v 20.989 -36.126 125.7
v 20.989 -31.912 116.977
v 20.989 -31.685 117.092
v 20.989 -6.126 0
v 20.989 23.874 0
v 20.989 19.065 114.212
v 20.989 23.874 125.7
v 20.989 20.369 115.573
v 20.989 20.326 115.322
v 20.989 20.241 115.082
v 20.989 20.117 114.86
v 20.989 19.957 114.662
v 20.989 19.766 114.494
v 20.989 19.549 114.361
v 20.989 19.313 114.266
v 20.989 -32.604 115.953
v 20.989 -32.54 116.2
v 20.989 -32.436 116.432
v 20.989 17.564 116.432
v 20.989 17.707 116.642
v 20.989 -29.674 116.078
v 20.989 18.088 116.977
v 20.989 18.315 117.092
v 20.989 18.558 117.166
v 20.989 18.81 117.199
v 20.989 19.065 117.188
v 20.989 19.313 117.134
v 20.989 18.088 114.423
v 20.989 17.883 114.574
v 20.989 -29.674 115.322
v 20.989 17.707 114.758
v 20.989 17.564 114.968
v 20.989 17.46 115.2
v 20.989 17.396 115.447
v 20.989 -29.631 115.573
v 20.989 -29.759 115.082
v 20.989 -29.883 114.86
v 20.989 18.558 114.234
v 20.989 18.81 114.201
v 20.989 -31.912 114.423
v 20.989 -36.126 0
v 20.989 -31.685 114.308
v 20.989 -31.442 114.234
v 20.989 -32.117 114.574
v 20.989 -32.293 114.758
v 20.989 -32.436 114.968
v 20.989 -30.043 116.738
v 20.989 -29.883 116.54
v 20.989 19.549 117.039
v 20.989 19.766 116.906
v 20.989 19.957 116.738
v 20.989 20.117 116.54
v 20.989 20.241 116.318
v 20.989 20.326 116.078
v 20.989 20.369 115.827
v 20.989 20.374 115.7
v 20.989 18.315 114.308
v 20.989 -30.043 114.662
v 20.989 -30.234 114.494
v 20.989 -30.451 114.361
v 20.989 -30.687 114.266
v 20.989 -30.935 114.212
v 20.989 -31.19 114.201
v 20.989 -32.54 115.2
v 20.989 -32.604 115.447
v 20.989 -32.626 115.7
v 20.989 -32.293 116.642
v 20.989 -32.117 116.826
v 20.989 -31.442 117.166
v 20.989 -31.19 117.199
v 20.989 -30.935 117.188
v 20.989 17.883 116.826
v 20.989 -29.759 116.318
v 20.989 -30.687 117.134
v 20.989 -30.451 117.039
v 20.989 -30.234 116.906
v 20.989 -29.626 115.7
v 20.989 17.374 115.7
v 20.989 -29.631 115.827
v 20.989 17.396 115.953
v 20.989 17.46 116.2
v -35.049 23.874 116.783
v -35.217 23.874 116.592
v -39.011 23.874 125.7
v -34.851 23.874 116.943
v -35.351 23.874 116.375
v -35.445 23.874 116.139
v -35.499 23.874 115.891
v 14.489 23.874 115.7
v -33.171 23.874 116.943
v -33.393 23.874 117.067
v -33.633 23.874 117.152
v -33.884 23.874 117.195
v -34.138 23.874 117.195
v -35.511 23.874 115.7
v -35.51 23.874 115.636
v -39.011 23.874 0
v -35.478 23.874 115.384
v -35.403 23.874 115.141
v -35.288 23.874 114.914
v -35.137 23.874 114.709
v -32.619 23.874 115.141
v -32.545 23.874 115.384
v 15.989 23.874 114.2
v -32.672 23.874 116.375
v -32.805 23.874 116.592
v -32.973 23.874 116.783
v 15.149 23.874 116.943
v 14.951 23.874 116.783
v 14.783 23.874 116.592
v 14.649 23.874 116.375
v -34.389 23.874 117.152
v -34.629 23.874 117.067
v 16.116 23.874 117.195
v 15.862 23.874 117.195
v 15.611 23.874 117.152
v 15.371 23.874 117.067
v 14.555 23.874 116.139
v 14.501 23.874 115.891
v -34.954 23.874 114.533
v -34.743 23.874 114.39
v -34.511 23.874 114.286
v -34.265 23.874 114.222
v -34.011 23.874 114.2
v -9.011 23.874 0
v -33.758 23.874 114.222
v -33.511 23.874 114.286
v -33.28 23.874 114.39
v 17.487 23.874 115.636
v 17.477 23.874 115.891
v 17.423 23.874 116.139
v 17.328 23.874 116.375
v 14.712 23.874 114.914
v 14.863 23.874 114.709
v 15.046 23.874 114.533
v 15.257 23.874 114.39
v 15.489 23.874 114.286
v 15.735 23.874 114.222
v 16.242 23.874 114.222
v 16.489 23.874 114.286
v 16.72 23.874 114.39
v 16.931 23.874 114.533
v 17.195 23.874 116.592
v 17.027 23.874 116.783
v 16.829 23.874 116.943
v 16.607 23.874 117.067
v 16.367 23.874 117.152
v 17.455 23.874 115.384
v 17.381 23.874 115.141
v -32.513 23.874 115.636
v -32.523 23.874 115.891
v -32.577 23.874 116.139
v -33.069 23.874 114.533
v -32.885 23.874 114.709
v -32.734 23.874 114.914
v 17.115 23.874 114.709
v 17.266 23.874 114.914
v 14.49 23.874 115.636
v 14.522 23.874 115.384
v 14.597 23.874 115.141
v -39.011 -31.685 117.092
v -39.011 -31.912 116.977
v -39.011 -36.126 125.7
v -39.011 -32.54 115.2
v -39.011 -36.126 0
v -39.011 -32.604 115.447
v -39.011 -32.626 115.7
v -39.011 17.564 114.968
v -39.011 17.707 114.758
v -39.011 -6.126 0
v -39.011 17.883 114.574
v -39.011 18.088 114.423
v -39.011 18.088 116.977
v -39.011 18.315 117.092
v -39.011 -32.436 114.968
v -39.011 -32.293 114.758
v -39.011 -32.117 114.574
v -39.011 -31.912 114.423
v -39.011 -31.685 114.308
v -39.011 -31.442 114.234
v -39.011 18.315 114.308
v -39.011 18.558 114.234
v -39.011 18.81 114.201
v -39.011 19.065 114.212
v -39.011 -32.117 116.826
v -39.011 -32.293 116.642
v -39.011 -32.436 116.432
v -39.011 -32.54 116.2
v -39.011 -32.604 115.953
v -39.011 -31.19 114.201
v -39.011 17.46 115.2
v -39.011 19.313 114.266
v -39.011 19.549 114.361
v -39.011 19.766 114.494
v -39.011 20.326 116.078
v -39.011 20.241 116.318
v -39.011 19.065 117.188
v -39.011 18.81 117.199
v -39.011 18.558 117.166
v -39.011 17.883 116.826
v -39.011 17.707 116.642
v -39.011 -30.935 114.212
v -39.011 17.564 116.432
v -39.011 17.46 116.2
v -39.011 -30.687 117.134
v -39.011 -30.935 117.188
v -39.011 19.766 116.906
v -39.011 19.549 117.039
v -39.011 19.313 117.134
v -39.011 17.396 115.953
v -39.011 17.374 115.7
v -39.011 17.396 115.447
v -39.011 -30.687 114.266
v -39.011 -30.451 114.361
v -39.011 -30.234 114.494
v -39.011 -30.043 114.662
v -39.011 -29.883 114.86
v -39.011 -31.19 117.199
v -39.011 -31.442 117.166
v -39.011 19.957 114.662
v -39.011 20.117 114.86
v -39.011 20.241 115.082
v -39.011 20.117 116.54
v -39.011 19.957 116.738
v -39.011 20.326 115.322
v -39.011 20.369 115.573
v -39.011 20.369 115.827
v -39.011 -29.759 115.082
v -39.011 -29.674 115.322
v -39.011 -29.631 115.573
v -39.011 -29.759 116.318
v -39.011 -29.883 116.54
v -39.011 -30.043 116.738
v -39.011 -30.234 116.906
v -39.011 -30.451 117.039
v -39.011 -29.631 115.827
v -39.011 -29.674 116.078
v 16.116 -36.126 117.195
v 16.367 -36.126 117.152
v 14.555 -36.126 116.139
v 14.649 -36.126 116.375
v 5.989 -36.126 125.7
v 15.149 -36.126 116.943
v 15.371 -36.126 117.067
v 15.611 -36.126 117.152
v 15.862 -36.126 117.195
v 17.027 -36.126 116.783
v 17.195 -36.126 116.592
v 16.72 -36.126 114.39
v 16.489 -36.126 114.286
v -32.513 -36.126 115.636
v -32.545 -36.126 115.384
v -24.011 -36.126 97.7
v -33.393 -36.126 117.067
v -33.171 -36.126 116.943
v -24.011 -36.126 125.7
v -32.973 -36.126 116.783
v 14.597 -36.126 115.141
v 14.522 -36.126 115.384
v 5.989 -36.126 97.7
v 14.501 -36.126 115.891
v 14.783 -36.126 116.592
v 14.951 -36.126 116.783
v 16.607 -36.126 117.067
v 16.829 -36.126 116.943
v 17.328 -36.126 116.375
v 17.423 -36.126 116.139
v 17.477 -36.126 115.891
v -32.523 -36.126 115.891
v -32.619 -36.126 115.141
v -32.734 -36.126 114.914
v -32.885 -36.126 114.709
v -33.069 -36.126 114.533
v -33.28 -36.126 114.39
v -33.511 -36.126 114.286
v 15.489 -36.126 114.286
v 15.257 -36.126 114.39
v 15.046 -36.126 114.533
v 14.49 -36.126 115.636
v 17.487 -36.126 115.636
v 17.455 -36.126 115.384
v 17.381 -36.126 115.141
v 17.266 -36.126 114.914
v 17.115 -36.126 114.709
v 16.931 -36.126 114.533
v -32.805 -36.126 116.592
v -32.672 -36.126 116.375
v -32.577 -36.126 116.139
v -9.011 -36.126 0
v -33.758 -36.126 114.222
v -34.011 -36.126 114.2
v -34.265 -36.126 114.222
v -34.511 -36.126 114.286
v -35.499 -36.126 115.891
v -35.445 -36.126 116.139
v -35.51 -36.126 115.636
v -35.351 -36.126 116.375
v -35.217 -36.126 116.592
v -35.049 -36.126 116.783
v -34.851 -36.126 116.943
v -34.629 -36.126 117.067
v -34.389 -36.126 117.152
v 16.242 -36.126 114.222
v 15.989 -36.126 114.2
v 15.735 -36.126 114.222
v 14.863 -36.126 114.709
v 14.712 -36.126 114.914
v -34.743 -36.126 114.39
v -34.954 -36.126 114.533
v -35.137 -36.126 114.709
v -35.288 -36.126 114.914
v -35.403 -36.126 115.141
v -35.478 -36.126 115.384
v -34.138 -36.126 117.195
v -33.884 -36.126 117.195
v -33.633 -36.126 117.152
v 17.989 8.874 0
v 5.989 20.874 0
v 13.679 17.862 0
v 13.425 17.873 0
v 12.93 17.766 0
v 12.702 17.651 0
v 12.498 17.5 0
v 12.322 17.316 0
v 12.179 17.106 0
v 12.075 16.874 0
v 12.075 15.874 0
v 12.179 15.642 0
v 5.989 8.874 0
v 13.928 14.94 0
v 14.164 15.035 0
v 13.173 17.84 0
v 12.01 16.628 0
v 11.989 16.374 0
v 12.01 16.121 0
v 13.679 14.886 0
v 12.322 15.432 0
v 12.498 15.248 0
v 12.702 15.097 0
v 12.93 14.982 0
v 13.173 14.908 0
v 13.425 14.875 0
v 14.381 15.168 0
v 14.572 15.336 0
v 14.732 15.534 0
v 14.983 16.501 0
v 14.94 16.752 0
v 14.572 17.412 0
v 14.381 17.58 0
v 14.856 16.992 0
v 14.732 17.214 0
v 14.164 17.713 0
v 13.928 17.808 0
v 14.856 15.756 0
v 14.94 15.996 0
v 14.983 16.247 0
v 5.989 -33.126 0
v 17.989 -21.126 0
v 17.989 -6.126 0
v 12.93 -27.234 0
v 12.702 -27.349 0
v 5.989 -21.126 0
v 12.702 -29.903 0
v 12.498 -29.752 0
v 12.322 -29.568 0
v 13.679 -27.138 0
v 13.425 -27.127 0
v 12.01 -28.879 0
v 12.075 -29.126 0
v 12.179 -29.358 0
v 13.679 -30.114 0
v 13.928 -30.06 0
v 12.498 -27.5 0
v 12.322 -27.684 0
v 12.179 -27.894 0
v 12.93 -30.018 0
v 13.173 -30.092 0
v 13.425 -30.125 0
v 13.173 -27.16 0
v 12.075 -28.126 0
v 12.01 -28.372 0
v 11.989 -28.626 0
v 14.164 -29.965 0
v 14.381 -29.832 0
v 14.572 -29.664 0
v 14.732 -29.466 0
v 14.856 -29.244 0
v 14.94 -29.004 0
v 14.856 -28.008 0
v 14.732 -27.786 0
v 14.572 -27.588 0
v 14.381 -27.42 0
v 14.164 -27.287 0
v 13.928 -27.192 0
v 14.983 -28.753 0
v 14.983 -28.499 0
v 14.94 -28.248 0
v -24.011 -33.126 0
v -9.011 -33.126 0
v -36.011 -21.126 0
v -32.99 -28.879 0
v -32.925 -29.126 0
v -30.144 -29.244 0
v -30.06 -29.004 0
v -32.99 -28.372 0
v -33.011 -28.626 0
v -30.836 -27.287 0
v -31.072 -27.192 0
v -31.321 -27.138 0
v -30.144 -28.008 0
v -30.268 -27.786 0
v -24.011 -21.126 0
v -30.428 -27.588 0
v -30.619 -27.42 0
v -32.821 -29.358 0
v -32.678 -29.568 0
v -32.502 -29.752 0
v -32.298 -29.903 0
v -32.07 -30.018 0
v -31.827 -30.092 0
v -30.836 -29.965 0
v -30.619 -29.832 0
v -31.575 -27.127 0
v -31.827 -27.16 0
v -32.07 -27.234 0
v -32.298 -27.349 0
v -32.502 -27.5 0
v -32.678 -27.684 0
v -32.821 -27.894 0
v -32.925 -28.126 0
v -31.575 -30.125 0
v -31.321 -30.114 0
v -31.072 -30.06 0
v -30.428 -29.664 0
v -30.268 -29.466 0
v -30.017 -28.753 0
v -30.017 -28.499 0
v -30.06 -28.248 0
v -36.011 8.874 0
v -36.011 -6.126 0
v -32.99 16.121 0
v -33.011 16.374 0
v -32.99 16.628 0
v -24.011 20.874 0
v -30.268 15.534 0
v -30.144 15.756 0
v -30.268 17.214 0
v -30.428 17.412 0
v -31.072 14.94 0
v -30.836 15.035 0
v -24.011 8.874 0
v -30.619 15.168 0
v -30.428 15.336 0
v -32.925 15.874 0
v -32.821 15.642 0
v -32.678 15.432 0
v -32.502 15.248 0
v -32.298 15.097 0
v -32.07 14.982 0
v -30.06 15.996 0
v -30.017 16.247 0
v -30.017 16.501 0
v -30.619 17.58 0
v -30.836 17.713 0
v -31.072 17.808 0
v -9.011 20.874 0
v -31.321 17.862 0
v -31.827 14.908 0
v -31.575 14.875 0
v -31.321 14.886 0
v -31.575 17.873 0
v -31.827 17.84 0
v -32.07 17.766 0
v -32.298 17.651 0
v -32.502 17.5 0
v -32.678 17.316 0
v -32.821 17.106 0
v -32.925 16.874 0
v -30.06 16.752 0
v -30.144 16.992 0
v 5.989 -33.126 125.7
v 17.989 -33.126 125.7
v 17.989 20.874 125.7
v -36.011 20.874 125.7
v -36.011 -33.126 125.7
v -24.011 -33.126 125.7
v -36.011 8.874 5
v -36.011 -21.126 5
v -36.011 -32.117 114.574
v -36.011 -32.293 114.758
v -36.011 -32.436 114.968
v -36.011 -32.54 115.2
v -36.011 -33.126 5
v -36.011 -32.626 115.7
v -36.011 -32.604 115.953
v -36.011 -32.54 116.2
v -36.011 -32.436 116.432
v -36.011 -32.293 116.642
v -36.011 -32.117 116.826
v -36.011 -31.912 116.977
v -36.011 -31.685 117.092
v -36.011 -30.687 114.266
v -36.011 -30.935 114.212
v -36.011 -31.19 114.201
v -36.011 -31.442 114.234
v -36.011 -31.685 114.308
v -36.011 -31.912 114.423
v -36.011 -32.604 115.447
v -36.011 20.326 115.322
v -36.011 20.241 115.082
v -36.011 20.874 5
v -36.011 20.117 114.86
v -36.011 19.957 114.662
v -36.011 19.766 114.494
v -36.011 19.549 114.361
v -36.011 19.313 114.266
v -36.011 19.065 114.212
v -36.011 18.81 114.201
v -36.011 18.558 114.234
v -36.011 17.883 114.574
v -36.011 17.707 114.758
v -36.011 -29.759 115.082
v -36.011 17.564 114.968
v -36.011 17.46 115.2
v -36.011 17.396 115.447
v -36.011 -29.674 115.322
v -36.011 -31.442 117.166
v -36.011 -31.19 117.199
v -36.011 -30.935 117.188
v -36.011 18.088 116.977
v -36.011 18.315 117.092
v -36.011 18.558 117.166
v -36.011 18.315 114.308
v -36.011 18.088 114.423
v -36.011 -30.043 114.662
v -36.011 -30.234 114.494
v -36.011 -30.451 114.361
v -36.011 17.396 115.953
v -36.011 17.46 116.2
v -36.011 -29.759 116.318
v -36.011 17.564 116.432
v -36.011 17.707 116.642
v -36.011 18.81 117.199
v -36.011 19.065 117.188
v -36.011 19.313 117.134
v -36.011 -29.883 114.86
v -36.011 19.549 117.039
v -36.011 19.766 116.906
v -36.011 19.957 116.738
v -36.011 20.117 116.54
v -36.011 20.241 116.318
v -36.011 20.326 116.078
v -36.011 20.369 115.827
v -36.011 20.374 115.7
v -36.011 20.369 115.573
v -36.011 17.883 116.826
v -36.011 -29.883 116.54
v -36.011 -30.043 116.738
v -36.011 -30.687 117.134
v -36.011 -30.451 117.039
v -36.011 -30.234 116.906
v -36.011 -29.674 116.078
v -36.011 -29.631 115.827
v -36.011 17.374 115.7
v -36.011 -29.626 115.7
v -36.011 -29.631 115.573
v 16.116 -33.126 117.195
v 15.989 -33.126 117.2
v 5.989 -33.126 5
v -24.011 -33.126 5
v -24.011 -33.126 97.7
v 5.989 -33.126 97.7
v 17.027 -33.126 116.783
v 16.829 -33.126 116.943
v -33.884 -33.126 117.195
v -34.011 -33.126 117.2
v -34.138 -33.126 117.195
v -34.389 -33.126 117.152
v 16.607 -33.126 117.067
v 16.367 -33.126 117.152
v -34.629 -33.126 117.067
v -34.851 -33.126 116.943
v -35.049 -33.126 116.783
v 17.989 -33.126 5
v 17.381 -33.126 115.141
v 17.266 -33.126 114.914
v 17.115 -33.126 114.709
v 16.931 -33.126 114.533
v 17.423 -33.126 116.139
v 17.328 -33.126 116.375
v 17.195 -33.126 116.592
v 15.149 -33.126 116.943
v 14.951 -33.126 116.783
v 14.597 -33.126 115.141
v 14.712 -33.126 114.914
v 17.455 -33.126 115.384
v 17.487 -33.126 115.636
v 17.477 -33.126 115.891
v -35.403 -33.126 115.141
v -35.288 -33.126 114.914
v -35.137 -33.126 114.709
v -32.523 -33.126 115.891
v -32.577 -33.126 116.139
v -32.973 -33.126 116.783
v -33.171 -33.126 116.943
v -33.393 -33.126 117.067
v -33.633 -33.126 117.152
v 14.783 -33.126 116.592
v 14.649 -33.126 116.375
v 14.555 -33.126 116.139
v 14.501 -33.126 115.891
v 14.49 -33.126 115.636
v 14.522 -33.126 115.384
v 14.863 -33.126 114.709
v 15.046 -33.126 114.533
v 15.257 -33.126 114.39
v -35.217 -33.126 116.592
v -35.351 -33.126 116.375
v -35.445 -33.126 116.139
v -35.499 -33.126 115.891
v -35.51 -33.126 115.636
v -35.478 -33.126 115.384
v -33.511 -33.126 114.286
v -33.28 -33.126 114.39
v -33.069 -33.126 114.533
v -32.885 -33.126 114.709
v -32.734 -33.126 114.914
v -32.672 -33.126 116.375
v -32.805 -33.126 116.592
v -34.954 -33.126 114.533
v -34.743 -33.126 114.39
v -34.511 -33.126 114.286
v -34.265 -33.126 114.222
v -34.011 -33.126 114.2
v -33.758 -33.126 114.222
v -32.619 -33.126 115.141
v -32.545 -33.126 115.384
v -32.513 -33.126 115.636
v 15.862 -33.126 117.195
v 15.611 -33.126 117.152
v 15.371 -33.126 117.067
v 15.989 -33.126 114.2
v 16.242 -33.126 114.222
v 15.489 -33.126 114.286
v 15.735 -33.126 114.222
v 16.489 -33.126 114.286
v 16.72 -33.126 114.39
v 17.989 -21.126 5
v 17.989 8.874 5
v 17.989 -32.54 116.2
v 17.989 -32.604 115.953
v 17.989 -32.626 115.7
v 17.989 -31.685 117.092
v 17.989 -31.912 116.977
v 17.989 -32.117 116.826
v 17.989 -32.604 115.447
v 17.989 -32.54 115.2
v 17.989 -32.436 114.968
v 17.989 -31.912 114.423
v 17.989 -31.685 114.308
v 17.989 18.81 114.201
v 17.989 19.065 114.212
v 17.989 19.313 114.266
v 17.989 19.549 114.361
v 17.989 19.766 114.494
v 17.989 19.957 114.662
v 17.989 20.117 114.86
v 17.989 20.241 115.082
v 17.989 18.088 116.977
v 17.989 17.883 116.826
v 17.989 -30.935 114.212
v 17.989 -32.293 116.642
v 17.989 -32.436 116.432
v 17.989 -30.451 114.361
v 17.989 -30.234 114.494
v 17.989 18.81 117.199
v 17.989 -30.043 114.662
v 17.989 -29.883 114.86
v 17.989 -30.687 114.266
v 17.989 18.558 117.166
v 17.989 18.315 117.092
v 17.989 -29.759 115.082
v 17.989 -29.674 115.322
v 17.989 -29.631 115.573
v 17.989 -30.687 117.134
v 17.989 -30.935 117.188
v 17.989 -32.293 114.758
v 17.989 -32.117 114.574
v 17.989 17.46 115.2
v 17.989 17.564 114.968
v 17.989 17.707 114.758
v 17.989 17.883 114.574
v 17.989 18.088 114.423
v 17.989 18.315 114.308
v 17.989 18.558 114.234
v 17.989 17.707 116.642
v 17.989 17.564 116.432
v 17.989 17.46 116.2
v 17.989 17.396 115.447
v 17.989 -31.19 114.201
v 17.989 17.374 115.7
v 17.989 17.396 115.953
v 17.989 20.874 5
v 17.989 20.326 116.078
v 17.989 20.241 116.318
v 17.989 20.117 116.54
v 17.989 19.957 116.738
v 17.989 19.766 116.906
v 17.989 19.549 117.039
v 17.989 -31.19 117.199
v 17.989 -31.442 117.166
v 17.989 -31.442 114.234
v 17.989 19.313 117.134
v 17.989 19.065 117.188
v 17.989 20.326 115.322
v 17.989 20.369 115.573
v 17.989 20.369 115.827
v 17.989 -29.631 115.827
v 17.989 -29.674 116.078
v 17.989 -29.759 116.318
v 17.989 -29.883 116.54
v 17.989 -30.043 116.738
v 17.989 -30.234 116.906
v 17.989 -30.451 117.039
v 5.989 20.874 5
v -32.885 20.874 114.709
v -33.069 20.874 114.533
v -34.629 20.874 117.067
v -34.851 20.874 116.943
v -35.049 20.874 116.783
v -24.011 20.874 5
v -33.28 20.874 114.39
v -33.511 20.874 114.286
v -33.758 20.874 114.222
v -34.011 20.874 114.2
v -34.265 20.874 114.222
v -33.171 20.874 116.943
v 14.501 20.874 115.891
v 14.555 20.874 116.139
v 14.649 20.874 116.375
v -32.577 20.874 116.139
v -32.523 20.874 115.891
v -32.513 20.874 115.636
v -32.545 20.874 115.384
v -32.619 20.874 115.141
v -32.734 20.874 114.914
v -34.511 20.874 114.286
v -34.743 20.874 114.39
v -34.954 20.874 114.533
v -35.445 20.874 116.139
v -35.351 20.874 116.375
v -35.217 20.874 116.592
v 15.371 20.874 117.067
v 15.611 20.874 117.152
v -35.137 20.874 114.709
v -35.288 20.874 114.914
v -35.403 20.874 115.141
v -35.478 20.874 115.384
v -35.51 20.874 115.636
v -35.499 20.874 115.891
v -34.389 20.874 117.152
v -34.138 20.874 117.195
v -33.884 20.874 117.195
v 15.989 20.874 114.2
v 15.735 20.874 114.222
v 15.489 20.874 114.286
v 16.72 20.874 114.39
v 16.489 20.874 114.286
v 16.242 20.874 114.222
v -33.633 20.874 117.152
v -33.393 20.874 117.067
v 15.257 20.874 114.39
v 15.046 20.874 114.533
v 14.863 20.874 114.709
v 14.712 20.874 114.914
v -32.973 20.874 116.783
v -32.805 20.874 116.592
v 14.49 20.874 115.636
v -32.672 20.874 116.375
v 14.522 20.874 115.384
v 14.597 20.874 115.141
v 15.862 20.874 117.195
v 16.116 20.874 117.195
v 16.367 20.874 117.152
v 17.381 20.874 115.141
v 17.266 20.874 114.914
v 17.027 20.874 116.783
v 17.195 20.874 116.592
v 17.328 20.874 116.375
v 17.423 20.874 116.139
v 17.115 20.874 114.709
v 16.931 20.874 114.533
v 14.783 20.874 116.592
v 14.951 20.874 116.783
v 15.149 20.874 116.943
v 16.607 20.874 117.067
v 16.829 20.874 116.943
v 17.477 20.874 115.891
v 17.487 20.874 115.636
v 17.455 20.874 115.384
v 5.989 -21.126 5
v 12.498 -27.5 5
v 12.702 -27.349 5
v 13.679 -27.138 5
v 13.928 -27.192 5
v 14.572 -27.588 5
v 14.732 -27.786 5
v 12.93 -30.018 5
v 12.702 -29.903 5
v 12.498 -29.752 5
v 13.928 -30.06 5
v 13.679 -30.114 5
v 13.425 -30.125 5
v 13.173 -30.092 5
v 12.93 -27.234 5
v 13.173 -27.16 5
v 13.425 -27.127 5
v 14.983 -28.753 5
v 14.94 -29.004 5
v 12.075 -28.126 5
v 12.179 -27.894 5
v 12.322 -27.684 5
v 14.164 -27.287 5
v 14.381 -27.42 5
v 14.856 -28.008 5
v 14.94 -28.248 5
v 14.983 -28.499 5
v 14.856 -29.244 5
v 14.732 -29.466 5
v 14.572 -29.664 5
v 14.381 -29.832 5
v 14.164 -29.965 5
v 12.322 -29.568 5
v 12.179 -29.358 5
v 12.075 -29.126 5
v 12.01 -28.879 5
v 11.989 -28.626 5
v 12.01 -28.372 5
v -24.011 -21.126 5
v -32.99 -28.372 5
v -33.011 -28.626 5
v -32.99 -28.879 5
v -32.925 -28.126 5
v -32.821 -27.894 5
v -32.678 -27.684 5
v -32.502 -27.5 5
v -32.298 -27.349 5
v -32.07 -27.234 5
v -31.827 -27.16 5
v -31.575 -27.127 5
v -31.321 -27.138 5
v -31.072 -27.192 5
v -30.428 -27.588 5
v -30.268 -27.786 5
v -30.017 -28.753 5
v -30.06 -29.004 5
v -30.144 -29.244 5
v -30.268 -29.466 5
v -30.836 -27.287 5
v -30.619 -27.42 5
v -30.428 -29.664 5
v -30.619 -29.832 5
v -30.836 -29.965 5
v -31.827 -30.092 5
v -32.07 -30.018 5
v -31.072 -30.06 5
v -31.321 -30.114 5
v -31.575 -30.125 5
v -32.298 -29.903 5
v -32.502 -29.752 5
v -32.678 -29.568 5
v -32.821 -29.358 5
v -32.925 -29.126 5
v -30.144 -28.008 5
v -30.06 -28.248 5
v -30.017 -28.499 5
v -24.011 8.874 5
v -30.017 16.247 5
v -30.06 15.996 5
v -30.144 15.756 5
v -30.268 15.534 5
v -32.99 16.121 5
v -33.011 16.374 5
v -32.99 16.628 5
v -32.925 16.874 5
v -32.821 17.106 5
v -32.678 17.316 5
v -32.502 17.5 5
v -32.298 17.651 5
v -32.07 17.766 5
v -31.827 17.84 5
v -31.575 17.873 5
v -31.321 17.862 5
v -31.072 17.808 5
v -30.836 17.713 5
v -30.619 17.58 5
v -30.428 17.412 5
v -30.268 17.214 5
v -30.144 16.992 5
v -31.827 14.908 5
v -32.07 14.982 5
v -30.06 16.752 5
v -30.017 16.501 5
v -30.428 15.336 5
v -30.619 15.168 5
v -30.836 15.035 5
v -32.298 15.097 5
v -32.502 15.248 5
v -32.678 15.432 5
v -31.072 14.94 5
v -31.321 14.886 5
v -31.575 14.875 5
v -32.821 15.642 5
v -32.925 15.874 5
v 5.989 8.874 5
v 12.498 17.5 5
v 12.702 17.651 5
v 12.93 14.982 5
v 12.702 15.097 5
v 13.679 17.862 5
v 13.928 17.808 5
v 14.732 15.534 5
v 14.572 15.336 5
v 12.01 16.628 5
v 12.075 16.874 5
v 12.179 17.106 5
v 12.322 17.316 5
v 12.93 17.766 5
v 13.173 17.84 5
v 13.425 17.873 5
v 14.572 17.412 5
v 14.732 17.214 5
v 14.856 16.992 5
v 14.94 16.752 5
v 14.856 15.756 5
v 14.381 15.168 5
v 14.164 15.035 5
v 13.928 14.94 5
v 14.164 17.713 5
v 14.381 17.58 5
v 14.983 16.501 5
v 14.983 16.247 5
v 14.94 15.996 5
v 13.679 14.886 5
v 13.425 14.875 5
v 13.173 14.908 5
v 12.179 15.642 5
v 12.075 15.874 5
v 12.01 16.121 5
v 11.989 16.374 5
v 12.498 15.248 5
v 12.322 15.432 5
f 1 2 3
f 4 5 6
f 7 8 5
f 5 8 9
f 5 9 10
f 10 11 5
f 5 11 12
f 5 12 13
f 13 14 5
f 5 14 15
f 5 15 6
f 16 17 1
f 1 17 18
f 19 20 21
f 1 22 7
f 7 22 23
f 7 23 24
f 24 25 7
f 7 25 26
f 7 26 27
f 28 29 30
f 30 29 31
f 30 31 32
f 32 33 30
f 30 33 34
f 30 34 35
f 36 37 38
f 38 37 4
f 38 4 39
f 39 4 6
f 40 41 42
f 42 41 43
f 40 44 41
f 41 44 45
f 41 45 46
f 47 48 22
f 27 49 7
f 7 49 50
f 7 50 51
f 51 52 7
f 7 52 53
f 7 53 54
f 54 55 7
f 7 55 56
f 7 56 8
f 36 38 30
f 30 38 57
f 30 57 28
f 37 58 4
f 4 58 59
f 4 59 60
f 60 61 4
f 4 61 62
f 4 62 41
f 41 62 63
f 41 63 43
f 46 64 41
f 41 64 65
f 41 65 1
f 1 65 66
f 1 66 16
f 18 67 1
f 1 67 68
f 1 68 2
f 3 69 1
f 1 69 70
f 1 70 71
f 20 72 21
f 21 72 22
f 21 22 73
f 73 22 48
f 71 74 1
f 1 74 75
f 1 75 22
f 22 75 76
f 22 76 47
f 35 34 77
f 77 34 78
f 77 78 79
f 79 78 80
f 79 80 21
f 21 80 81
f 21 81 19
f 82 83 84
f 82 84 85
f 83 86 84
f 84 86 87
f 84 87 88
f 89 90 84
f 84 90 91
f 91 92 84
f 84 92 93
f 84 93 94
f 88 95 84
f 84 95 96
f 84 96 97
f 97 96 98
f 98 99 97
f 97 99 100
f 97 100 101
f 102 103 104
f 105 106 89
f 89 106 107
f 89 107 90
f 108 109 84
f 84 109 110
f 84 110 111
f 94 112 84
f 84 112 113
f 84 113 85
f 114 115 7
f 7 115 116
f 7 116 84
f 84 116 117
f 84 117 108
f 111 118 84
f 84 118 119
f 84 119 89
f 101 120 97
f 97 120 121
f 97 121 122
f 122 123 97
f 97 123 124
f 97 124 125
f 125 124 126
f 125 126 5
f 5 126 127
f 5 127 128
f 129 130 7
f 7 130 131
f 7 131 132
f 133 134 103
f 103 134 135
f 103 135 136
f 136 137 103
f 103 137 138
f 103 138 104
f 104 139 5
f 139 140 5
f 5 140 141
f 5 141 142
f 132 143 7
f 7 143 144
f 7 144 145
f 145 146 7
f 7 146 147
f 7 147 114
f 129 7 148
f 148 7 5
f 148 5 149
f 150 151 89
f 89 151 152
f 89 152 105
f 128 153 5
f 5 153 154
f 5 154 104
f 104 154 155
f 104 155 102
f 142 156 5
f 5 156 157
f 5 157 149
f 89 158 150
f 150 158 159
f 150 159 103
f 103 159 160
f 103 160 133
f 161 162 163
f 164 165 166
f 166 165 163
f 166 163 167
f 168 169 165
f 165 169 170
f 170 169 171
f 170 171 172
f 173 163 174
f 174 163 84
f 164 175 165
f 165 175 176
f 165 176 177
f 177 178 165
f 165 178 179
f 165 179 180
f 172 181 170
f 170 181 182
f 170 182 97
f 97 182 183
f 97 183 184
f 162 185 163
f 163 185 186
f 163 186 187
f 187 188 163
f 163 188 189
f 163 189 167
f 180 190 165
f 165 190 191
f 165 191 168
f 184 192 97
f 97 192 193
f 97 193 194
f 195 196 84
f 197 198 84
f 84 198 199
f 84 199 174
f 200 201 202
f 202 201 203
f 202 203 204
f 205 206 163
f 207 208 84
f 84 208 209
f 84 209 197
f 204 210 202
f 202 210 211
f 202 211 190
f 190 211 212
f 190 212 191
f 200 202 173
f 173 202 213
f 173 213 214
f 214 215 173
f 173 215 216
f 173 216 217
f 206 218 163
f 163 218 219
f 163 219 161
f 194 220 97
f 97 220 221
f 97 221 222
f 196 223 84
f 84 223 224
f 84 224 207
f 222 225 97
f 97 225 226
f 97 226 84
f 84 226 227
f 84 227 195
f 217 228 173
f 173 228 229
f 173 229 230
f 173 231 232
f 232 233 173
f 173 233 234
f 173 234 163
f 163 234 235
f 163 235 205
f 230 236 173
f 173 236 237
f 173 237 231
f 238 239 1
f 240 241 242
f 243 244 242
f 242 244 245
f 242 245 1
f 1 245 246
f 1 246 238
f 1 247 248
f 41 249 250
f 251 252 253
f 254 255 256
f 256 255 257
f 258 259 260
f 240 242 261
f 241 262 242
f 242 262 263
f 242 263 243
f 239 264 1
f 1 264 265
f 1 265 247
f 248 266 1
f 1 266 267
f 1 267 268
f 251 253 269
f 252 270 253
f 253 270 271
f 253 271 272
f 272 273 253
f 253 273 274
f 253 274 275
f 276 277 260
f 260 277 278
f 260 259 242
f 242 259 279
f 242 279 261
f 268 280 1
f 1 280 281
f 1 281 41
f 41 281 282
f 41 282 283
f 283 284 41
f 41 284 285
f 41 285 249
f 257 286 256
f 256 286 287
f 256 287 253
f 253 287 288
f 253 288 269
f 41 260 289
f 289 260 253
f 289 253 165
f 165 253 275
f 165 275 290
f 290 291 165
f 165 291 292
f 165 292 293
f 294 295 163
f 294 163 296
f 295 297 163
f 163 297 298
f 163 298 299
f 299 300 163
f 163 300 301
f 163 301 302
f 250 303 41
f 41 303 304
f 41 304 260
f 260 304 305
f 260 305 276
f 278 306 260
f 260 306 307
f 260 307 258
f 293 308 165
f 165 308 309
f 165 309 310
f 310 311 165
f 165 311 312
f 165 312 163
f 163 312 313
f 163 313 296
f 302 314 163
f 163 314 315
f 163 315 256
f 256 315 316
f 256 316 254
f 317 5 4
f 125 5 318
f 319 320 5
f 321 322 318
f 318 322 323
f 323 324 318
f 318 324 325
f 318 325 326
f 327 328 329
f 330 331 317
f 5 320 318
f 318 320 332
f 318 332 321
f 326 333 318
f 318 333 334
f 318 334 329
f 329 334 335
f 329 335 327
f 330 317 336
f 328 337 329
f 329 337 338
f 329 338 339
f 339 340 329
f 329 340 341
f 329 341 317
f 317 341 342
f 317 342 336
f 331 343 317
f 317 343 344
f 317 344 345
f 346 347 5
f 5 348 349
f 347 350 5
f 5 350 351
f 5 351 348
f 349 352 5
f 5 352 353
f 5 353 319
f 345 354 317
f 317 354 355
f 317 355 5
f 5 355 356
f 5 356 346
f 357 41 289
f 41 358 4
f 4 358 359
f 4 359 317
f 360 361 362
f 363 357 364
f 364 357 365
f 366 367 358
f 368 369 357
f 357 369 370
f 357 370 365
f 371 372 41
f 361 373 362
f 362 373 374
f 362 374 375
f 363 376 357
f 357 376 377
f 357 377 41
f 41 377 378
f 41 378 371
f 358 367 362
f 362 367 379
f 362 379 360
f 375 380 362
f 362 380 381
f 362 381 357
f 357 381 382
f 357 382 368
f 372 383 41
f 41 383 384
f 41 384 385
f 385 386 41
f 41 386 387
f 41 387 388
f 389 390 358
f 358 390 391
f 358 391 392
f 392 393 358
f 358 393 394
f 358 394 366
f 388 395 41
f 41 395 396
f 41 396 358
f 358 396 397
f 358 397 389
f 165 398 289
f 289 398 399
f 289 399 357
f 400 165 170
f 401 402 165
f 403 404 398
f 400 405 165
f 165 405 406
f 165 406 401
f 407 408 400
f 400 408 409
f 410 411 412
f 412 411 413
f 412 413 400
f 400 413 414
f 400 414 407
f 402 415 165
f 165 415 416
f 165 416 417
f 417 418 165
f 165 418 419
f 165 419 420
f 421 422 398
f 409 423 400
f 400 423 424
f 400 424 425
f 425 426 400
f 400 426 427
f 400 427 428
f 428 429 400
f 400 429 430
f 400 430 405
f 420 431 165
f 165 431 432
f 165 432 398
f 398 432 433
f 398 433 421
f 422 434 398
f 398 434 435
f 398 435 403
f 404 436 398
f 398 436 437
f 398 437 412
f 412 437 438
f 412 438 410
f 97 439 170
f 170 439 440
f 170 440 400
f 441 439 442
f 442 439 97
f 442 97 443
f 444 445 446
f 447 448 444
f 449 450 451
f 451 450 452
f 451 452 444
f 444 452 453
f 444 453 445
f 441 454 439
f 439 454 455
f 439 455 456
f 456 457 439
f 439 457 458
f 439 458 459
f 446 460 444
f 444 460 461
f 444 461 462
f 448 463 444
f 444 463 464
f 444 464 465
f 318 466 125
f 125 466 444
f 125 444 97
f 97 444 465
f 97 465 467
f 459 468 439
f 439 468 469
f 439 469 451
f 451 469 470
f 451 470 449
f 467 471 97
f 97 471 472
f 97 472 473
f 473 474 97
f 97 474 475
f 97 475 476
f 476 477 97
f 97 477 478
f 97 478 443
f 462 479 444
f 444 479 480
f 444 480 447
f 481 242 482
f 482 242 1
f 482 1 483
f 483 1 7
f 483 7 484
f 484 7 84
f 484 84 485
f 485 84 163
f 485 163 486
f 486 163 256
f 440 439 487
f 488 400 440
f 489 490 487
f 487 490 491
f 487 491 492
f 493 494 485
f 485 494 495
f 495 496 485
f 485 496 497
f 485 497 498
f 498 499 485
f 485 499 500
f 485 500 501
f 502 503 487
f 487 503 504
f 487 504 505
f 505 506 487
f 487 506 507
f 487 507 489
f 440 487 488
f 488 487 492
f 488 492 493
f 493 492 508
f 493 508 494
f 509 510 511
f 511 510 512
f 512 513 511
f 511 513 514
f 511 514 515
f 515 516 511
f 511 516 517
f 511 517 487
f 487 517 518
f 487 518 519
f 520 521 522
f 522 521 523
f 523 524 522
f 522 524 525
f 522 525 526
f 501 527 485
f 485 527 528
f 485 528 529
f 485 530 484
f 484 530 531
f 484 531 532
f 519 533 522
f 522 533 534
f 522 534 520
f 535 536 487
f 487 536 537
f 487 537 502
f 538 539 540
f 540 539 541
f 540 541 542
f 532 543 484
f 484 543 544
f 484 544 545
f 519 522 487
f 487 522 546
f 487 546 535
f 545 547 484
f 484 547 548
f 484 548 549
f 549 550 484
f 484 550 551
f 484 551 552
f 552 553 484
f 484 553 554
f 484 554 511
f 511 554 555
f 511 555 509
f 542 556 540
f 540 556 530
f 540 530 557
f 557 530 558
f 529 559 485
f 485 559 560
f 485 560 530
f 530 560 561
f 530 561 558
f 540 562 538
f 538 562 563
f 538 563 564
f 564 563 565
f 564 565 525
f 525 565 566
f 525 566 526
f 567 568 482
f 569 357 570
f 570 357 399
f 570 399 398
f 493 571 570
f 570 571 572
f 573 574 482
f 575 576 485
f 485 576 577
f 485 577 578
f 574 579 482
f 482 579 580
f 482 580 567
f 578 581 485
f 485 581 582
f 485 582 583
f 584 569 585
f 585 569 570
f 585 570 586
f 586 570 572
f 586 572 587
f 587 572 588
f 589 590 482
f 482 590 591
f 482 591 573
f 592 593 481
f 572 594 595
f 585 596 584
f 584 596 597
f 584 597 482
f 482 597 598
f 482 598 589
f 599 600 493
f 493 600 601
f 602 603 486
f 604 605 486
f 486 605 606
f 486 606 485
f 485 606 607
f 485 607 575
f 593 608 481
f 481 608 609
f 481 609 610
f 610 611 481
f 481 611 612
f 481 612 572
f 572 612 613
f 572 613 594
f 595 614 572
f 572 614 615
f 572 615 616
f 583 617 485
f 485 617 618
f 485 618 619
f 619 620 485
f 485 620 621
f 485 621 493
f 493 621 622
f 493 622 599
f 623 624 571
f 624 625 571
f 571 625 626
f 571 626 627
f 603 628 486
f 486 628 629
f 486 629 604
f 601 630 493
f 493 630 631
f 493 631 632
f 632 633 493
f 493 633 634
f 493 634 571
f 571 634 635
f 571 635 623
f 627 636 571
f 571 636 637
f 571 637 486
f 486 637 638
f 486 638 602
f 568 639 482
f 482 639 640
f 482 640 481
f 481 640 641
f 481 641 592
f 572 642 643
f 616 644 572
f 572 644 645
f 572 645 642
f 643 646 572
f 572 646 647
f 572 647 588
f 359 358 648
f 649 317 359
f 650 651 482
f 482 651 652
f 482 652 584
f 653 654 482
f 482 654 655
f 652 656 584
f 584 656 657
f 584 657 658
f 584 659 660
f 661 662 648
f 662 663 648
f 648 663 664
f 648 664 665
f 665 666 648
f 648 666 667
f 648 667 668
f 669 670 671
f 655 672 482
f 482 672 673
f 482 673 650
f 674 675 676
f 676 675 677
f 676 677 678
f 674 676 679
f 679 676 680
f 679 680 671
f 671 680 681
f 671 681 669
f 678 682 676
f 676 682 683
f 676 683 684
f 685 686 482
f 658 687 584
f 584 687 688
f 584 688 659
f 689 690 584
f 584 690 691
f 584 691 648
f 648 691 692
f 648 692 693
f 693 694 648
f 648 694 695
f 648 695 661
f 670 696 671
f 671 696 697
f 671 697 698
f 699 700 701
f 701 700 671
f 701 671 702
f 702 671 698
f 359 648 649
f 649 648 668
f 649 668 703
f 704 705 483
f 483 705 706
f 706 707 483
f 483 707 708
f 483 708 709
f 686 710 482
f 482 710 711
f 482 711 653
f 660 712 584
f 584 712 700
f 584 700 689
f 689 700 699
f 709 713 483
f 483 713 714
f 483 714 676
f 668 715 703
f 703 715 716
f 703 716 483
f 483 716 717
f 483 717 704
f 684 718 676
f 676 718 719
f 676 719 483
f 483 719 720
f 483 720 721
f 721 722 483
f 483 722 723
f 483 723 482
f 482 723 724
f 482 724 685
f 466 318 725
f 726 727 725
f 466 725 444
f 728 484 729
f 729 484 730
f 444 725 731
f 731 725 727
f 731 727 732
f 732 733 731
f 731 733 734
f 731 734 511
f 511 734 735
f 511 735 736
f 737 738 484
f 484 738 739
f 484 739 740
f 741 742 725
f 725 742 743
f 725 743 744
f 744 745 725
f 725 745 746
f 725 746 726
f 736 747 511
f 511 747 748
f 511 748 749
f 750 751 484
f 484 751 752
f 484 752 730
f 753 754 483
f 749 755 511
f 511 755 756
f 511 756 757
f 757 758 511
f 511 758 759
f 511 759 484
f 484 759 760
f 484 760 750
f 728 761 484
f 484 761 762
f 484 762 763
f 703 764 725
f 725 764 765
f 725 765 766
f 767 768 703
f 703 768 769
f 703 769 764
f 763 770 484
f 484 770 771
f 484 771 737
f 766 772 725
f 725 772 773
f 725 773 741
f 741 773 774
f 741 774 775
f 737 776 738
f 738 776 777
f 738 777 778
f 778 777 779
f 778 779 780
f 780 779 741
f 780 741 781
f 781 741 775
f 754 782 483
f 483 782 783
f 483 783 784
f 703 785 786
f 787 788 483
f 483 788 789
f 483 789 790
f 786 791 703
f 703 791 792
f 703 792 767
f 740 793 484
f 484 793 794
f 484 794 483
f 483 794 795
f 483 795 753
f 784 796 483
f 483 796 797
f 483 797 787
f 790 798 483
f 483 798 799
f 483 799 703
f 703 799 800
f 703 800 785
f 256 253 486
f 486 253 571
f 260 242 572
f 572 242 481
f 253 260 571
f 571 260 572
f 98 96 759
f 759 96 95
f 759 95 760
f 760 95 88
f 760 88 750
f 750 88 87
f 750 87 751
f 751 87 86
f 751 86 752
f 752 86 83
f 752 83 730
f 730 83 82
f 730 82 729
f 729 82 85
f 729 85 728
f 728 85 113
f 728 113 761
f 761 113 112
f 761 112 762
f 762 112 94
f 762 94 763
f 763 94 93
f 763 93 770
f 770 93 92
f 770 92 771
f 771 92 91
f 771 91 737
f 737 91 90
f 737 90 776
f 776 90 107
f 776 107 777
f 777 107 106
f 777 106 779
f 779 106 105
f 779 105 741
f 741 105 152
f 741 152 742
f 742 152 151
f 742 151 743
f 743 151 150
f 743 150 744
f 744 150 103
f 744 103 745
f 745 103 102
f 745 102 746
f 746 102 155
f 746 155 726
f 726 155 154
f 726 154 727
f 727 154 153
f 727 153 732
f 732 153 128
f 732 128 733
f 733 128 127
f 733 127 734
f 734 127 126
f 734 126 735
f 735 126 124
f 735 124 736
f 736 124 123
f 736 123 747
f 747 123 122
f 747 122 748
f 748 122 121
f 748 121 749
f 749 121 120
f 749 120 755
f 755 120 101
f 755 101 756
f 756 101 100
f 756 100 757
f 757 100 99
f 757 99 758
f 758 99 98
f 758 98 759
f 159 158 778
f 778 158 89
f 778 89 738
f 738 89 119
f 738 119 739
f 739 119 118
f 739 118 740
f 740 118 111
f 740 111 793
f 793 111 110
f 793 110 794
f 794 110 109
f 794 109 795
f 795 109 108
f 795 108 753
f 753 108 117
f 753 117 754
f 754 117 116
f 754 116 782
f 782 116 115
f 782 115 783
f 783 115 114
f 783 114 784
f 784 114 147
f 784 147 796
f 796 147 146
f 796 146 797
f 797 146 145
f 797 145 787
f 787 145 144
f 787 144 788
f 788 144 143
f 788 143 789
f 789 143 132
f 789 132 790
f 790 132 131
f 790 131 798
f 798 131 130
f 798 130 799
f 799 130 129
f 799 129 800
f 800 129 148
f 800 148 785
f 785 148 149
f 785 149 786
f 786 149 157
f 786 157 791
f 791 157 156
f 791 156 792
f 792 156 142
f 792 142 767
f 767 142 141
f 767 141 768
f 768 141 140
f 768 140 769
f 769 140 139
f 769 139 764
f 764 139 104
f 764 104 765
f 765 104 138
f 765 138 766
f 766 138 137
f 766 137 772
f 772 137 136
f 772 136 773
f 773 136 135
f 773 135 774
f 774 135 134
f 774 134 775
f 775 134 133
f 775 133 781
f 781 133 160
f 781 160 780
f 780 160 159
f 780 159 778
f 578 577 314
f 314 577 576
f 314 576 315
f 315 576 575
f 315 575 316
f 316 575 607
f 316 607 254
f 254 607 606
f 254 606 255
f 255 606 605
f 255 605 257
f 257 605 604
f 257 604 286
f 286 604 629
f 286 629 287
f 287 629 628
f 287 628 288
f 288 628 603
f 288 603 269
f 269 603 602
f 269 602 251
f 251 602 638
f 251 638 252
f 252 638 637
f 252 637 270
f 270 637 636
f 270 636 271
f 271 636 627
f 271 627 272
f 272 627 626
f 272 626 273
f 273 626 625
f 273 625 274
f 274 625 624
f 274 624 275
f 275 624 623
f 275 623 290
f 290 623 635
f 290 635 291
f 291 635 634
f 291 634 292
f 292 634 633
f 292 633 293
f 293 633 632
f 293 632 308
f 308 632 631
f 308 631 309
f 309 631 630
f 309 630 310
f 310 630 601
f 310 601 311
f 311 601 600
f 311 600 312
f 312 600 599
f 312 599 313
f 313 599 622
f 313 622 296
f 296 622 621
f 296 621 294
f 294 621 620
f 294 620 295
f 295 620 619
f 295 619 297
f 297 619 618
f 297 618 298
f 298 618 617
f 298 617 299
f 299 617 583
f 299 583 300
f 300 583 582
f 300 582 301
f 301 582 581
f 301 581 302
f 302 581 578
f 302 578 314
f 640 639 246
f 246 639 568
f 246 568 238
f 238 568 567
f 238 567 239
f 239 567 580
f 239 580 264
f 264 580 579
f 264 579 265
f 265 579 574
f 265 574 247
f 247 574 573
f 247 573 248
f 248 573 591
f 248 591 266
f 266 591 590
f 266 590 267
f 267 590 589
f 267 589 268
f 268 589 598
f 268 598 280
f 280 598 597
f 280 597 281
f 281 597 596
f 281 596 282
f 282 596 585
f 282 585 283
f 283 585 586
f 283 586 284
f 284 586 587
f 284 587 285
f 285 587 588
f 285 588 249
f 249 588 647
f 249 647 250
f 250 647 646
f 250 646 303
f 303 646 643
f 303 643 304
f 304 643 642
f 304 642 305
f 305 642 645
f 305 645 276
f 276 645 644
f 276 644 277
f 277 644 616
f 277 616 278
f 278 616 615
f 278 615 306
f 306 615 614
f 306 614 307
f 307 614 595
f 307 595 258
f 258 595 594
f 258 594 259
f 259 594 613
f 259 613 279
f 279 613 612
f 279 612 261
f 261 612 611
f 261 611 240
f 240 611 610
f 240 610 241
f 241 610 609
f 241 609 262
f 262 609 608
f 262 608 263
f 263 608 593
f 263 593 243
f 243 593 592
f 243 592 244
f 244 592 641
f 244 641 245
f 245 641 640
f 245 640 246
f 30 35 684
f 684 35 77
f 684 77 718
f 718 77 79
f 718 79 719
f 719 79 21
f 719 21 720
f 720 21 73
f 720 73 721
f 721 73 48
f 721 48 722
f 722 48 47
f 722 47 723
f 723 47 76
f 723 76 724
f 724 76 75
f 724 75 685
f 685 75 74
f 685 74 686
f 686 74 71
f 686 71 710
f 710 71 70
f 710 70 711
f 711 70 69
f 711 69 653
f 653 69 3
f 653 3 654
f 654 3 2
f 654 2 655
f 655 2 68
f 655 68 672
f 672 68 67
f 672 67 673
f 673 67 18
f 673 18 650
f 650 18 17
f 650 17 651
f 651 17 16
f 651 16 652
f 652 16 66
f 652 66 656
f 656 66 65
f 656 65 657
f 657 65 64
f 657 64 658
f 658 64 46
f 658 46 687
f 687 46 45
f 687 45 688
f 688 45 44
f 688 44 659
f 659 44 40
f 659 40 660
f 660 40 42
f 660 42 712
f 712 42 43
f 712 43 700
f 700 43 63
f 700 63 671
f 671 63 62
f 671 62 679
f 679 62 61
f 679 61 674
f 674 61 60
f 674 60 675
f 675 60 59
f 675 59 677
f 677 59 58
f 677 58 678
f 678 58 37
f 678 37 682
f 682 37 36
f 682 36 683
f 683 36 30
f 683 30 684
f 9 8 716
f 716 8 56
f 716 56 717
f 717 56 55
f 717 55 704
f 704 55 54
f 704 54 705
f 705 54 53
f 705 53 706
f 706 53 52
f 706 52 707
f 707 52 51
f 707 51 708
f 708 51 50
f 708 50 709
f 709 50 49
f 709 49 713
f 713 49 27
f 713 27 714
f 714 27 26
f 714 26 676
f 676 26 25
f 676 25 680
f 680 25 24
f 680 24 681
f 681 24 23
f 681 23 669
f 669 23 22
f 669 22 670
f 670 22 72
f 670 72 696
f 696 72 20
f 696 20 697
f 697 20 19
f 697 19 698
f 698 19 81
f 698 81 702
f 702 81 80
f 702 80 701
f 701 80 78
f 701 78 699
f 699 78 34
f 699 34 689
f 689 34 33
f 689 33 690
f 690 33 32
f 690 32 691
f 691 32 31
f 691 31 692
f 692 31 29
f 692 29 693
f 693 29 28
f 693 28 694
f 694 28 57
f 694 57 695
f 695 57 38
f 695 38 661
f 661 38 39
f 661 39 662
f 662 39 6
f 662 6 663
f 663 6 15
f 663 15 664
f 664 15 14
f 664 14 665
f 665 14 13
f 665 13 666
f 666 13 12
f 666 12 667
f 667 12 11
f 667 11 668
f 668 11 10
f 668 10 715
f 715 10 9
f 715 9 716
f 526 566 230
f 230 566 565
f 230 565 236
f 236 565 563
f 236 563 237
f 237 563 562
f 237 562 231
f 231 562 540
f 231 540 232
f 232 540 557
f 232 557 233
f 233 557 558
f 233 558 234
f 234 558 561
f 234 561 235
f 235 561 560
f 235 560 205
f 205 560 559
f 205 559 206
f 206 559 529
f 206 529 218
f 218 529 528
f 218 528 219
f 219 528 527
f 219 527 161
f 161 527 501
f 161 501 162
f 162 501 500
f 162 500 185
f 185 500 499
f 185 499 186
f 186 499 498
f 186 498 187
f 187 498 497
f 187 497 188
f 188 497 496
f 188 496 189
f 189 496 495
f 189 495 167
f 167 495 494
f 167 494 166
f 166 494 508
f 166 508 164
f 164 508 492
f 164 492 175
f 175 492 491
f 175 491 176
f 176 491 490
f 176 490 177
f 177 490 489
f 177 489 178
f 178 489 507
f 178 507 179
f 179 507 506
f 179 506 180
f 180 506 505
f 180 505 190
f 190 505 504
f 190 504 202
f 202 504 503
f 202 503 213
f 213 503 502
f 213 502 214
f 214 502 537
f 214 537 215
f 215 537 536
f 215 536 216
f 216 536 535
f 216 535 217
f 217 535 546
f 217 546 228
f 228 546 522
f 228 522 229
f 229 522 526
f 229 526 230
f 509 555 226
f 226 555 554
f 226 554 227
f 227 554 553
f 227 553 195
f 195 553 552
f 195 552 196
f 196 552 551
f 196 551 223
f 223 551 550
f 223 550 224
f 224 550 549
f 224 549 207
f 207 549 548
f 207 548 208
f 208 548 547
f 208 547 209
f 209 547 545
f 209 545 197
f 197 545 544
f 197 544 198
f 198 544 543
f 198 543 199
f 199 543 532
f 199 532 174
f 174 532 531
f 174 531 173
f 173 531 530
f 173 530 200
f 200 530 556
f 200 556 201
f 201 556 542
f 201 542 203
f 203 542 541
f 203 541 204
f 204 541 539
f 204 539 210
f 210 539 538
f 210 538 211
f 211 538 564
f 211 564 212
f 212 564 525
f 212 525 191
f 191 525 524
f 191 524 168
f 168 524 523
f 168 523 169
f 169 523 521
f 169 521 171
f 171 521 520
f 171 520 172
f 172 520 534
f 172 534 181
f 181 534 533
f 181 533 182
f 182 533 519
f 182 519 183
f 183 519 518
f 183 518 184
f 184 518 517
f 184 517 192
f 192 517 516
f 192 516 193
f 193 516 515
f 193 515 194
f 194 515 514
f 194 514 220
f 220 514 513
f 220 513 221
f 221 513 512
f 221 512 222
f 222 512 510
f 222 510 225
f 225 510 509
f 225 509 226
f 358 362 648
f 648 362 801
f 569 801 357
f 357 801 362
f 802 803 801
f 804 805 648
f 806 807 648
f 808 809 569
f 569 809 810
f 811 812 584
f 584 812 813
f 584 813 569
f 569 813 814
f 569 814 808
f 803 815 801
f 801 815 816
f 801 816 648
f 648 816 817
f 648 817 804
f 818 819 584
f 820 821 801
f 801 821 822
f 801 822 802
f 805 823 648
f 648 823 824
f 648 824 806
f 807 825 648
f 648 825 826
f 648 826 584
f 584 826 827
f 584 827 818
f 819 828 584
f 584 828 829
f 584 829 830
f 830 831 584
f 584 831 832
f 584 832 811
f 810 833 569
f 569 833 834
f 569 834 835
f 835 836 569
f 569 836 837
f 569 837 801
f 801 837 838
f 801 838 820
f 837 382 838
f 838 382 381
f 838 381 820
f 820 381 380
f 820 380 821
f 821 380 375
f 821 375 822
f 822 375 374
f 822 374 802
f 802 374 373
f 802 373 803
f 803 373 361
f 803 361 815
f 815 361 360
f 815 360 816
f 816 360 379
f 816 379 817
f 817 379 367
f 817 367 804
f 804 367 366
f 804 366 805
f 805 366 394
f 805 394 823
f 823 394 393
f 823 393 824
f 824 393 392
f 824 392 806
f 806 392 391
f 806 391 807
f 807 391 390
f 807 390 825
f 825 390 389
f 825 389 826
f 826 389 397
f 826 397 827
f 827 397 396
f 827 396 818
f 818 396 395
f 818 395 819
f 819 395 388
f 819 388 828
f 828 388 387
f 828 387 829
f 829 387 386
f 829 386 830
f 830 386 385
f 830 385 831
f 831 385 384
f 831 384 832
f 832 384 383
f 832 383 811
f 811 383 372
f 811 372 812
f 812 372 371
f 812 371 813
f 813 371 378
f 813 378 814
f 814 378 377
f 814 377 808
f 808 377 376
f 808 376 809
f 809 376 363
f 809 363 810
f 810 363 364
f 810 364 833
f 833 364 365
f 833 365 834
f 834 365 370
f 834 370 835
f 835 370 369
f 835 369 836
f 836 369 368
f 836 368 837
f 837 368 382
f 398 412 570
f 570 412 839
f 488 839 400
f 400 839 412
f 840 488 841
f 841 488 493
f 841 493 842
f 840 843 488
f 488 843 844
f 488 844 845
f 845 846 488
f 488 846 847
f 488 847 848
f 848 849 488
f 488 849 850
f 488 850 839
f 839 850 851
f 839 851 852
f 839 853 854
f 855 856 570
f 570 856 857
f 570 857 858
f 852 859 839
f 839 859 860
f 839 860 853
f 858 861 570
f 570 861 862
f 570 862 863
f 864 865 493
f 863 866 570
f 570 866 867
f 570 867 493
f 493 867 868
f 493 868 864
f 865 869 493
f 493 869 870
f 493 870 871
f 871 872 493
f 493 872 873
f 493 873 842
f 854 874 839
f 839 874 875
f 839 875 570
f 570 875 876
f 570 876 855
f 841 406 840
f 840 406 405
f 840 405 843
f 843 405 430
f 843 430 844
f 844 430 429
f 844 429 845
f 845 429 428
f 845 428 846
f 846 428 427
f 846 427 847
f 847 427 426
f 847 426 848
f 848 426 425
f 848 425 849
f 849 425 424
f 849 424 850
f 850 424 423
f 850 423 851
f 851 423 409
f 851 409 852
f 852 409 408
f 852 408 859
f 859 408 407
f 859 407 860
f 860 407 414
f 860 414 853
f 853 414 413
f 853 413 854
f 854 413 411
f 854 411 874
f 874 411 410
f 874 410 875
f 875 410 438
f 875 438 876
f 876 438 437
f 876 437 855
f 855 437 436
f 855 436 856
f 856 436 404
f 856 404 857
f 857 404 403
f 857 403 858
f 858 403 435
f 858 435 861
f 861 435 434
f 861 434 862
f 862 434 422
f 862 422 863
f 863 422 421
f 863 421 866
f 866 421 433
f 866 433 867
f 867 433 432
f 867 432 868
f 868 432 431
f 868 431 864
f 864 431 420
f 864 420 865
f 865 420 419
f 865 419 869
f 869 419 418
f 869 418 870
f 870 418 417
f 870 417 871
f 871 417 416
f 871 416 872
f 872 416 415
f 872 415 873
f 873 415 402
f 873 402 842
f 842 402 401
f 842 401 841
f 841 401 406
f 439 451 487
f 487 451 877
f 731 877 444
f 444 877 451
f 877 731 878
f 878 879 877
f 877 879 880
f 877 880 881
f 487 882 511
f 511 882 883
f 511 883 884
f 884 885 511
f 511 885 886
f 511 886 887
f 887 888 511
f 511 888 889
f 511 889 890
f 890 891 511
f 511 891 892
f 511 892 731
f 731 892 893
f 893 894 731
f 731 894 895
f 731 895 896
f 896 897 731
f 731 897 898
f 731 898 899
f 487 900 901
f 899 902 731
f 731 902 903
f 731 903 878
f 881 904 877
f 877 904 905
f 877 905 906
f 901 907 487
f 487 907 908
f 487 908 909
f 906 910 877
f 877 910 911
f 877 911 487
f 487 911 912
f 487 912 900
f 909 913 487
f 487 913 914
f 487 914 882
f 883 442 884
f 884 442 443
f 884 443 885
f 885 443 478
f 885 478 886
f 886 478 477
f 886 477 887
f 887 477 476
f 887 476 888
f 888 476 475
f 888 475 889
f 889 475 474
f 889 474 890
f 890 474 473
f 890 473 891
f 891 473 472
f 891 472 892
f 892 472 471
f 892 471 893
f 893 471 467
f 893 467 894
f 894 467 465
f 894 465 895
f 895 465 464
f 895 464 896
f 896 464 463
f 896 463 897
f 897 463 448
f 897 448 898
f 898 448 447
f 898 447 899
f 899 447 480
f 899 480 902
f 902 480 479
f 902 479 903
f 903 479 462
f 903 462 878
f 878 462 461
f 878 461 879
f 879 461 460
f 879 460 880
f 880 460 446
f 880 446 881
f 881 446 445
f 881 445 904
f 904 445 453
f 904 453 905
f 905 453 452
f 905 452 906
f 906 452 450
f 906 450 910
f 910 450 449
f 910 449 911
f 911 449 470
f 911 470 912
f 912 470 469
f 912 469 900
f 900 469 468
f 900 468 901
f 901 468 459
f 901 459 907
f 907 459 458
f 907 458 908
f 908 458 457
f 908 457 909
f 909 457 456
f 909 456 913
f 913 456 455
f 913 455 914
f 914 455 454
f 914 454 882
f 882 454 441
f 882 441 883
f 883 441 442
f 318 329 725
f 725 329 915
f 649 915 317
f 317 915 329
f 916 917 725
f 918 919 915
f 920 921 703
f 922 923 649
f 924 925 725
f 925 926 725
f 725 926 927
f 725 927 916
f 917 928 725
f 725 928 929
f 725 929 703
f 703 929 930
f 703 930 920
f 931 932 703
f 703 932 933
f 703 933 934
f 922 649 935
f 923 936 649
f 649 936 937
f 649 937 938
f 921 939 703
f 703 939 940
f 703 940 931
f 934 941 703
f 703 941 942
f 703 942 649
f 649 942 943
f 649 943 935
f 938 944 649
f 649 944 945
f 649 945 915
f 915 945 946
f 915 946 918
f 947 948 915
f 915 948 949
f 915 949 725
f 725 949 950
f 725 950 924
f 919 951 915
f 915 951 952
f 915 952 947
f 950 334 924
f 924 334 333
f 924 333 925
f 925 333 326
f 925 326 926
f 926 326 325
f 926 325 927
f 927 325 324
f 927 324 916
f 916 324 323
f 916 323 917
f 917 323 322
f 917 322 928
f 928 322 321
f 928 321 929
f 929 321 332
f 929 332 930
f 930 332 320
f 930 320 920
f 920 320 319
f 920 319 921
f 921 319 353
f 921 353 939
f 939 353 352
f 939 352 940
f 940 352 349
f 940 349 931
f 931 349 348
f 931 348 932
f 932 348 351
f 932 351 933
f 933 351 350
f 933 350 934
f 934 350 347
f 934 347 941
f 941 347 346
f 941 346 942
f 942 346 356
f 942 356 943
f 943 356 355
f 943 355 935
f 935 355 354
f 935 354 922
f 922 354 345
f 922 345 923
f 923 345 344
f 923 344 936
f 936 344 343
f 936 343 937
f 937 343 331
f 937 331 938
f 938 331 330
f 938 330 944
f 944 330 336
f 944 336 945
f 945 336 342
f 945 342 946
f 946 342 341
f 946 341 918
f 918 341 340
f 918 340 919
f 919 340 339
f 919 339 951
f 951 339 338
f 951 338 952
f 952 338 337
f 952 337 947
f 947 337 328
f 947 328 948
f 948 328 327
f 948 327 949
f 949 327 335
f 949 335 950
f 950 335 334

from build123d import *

# Parameters (mm, degrees)
SKETCH1_W           = 60
SKETCH1_H           = 60
SKETCH1_R           = 9
SKETCH1_R_2         = 1.5
BOSS_EXTRUDE1_DEPTH = 4
SKETCH4_R           = 3.2
SKETCH4_R_2         = 2.7
BOSS_EXTRUDE6_DEPTH = 34
SKETCH5_W           = 60
SKETCH5_H           = 60
SKETCH5_W_2         = 54
SKETCH5_H_2         = 54
BOSS_EXTRUDE7_DEPTH = 121.7
SKETCH7_W           = 30
SKETCH7_H           = 28
CUT_EXTRUDE1_DEPTH  = 30.7
SKETCH15_R          = 1.5
CUT_EXTRUDE8_DEPTH  = 82
SKETCH17_W          = 54
SKETCH17_H          = 54
CUT_EXTRUDE9_DEPTH  = 38
SKETCH19_R          = 1.5
CUT_EXTRUDE10_DEPTH = 84
SKETCH20_W          = 15
SKETCH20_H          = 15
SKETCH20_R          = 1.5
BOSS_EXTRUDE8_DEPTH = 5


with BuildPart() as part:
    # Sketch1 → Boss-Extrude1 (new body)
    with BuildSketch(Plane.XY):
        with Locations((-9.011180766, -6.125993037)):
            Rectangle(SKETCH1_W, SKETCH1_H)
        with Locations((-9.011180766, -6.125993037)):
            Circle(SKETCH1_R, mode=Mode.SUBTRACT)
        with Locations((-17.995470725, 2.892105033)):
            Circle(SKETCH1_R_2, mode=Mode.SUBTRACT)
        with Locations((-18.051854011, -15.107894967)):
            Circle(SKETCH1_R_2, mode=Mode.SUBTRACT)
        with Locations((0.004529275, 2.892105033)):
            Circle(SKETCH1_R_2, mode=Mode.SUBTRACT)
        with Locations((-0.051854011, -15.107894967)):
            Circle(SKETCH1_R_2, mode=Mode.SUBTRACT)
    extrude(amount=BOSS_EXTRUDE1_DEPTH)

    # Sketch4 → Boss-Extrude6 (add)
    # profile 1 of 3: a face of its own
    with BuildSketch(Plane(origin=(0, 0, 0), x_dir=(-1, 0, 0), z_dir=(0, 0, -1))):
        with Locations(Location((-5.803539584, 2.84752695, 0), (0, 0, 180))):
            Circle(SKETCH4_R)
        with Locations((-5.803539584, 2.84752695)):
            Circle(SKETCH4_R_2, mode=Mode.SUBTRACT)
    # profile 2 of 3: a face of its own
    with BuildSketch(Plane(origin=(0, 0, 0), x_dir=(-1, 0, 0), z_dir=(0, 0, -1))):
        with Locations(Location((24.189837211, 2.217171142, 0), (0, 0, 180))):
            Circle(SKETCH4_R)
        with Locations((24.189837211, 2.217171142)):
            Circle(SKETCH4_R_2, mode=Mode.SUBTRACT)
    # profile 3 of 3: a face of its own
    with BuildSketch(Plane(origin=(0, 0, 0), x_dir=(-1, 0, 0), z_dir=(0, 0, -1))):
        with Locations(Location((8.64724467, -23.442677204, 0), (0, 0, 180))):
            Circle(SKETCH4_R)
        with Locations((8.64724467, -23.442677204)):
            Circle(SKETCH4_R_2, mode=Mode.SUBTRACT)
    extrude(amount=BOSS_EXTRUDE6_DEPTH)

    # Sketch5 → Boss-Extrude7 (add)
    with BuildSketch(Plane.XY.offset(4)):
        with Locations((-9.011180766, -6.125993037)):
            Rectangle(SKETCH5_W, SKETCH5_H)
        with Locations((-9.011180766, -6.125993037)):
            Rectangle(SKETCH5_W_2, SKETCH5_H_2, mode=Mode.SUBTRACT)
    extrude(amount=BOSS_EXTRUDE7_DEPTH)

    # Sketch7 → Cut-Extrude1 (cut)
    with BuildSketch(Plane.XZ.offset(36.125993037)):
        with Locations((-9.011180766, 111.7)):
            Rectangle(SKETCH7_W, SKETCH7_H)
    extrude(amount=-CUT_EXTRUDE1_DEPTH, mode=Mode.SUBTRACT)

    # Sketch15 → Cut-Extrude8 (cut)
    with BuildSketch(Plane.XZ.offset(36.125993037)):
        with Locations(Location((-34.011180766, 115.7, 0), (0, 0, 270))):
            Circle(SKETCH15_R)
        with Locations(Location((15.988819234, 115.7, 0), (0, 0, 270))):
            Circle(SKETCH15_R)
    extrude(amount=-CUT_EXTRUDE8_DEPTH, mode=Mode.SUBTRACT)

    # Sketch17 → Cut-Extrude9 (cut)
    with BuildSketch(Plane.XY.offset(4)):
        with Locations((-9.011180766, -6.125993037)):
            Rectangle(SKETCH17_W, SKETCH17_H)
    extrude(amount=-CUT_EXTRUDE9_DEPTH, mode=Mode.SUBTRACT)

    # Sketch19 → Cut-Extrude10 (cut)
    with BuildSketch(Plane.ZY.offset(39.011180766)):
        with Locations(Location((115.7, 18.874006963, 0), (0, 0, 270))):
            Circle(SKETCH19_R)
        with Locations(Location((115.7, -31.125993037, 0), (0, 0, 270))):
            Circle(SKETCH19_R)
    extrude(amount=-CUT_EXTRUDE10_DEPTH, mode=Mode.SUBTRACT)

    # Sketch20 → Boss-Extrude8 (add)
    # profile 1 of 4: a face of its own
    with BuildSketch(Plane(origin=(0, 0, 0), x_dir=(-1, 0, 0), z_dir=(0, 0, -1))):
        with Locations((-13.488819234, -28.625993037)):
            Rectangle(SKETCH20_W, SKETCH20_H)
        with Locations((-13.488819234, -28.625993037)):
            Circle(SKETCH20_R, mode=Mode.SUBTRACT)
    # profile 2 of 4: a face of its own
    with BuildSketch(Plane(origin=(0, 0, 0), x_dir=(-1, 0, 0), z_dir=(0, 0, -1))):
        with Locations((31.511180766, -28.625993037)):
            Rectangle(SKETCH20_W, SKETCH20_H)
        with Locations((31.511180766, -28.625993037)):
            Circle(SKETCH20_R, mode=Mode.SUBTRACT)
    # profile 3 of 4: a face of its own
    with BuildSketch(Plane(origin=(0, 0, 0), x_dir=(-1, 0, 0), z_dir=(0, 0, -1))):
        with Locations((31.511180766, 16.374006963)):
            Rectangle(SKETCH20_W, SKETCH20_H)
        with Locations((31.511180766, 16.374006963)):
            Circle(SKETCH20_R, mode=Mode.SUBTRACT)
    # profile 4 of 4: a face of its own
    with BuildSketch(Plane(origin=(0, 0, 0), x_dir=(-1, 0, 0), z_dir=(0, 0, -1))):
        with Locations((-13.488819234, 16.374006963)):
            Rectangle(SKETCH20_W, SKETCH20_H)
        with Locations((-13.488819234, 16.374006963)):
            Circle(SKETCH20_R, mode=Mode.SUBTRACT)
    extrude(amount=-BOSS_EXTRUDE8_DEPTH)


solid = part.part
